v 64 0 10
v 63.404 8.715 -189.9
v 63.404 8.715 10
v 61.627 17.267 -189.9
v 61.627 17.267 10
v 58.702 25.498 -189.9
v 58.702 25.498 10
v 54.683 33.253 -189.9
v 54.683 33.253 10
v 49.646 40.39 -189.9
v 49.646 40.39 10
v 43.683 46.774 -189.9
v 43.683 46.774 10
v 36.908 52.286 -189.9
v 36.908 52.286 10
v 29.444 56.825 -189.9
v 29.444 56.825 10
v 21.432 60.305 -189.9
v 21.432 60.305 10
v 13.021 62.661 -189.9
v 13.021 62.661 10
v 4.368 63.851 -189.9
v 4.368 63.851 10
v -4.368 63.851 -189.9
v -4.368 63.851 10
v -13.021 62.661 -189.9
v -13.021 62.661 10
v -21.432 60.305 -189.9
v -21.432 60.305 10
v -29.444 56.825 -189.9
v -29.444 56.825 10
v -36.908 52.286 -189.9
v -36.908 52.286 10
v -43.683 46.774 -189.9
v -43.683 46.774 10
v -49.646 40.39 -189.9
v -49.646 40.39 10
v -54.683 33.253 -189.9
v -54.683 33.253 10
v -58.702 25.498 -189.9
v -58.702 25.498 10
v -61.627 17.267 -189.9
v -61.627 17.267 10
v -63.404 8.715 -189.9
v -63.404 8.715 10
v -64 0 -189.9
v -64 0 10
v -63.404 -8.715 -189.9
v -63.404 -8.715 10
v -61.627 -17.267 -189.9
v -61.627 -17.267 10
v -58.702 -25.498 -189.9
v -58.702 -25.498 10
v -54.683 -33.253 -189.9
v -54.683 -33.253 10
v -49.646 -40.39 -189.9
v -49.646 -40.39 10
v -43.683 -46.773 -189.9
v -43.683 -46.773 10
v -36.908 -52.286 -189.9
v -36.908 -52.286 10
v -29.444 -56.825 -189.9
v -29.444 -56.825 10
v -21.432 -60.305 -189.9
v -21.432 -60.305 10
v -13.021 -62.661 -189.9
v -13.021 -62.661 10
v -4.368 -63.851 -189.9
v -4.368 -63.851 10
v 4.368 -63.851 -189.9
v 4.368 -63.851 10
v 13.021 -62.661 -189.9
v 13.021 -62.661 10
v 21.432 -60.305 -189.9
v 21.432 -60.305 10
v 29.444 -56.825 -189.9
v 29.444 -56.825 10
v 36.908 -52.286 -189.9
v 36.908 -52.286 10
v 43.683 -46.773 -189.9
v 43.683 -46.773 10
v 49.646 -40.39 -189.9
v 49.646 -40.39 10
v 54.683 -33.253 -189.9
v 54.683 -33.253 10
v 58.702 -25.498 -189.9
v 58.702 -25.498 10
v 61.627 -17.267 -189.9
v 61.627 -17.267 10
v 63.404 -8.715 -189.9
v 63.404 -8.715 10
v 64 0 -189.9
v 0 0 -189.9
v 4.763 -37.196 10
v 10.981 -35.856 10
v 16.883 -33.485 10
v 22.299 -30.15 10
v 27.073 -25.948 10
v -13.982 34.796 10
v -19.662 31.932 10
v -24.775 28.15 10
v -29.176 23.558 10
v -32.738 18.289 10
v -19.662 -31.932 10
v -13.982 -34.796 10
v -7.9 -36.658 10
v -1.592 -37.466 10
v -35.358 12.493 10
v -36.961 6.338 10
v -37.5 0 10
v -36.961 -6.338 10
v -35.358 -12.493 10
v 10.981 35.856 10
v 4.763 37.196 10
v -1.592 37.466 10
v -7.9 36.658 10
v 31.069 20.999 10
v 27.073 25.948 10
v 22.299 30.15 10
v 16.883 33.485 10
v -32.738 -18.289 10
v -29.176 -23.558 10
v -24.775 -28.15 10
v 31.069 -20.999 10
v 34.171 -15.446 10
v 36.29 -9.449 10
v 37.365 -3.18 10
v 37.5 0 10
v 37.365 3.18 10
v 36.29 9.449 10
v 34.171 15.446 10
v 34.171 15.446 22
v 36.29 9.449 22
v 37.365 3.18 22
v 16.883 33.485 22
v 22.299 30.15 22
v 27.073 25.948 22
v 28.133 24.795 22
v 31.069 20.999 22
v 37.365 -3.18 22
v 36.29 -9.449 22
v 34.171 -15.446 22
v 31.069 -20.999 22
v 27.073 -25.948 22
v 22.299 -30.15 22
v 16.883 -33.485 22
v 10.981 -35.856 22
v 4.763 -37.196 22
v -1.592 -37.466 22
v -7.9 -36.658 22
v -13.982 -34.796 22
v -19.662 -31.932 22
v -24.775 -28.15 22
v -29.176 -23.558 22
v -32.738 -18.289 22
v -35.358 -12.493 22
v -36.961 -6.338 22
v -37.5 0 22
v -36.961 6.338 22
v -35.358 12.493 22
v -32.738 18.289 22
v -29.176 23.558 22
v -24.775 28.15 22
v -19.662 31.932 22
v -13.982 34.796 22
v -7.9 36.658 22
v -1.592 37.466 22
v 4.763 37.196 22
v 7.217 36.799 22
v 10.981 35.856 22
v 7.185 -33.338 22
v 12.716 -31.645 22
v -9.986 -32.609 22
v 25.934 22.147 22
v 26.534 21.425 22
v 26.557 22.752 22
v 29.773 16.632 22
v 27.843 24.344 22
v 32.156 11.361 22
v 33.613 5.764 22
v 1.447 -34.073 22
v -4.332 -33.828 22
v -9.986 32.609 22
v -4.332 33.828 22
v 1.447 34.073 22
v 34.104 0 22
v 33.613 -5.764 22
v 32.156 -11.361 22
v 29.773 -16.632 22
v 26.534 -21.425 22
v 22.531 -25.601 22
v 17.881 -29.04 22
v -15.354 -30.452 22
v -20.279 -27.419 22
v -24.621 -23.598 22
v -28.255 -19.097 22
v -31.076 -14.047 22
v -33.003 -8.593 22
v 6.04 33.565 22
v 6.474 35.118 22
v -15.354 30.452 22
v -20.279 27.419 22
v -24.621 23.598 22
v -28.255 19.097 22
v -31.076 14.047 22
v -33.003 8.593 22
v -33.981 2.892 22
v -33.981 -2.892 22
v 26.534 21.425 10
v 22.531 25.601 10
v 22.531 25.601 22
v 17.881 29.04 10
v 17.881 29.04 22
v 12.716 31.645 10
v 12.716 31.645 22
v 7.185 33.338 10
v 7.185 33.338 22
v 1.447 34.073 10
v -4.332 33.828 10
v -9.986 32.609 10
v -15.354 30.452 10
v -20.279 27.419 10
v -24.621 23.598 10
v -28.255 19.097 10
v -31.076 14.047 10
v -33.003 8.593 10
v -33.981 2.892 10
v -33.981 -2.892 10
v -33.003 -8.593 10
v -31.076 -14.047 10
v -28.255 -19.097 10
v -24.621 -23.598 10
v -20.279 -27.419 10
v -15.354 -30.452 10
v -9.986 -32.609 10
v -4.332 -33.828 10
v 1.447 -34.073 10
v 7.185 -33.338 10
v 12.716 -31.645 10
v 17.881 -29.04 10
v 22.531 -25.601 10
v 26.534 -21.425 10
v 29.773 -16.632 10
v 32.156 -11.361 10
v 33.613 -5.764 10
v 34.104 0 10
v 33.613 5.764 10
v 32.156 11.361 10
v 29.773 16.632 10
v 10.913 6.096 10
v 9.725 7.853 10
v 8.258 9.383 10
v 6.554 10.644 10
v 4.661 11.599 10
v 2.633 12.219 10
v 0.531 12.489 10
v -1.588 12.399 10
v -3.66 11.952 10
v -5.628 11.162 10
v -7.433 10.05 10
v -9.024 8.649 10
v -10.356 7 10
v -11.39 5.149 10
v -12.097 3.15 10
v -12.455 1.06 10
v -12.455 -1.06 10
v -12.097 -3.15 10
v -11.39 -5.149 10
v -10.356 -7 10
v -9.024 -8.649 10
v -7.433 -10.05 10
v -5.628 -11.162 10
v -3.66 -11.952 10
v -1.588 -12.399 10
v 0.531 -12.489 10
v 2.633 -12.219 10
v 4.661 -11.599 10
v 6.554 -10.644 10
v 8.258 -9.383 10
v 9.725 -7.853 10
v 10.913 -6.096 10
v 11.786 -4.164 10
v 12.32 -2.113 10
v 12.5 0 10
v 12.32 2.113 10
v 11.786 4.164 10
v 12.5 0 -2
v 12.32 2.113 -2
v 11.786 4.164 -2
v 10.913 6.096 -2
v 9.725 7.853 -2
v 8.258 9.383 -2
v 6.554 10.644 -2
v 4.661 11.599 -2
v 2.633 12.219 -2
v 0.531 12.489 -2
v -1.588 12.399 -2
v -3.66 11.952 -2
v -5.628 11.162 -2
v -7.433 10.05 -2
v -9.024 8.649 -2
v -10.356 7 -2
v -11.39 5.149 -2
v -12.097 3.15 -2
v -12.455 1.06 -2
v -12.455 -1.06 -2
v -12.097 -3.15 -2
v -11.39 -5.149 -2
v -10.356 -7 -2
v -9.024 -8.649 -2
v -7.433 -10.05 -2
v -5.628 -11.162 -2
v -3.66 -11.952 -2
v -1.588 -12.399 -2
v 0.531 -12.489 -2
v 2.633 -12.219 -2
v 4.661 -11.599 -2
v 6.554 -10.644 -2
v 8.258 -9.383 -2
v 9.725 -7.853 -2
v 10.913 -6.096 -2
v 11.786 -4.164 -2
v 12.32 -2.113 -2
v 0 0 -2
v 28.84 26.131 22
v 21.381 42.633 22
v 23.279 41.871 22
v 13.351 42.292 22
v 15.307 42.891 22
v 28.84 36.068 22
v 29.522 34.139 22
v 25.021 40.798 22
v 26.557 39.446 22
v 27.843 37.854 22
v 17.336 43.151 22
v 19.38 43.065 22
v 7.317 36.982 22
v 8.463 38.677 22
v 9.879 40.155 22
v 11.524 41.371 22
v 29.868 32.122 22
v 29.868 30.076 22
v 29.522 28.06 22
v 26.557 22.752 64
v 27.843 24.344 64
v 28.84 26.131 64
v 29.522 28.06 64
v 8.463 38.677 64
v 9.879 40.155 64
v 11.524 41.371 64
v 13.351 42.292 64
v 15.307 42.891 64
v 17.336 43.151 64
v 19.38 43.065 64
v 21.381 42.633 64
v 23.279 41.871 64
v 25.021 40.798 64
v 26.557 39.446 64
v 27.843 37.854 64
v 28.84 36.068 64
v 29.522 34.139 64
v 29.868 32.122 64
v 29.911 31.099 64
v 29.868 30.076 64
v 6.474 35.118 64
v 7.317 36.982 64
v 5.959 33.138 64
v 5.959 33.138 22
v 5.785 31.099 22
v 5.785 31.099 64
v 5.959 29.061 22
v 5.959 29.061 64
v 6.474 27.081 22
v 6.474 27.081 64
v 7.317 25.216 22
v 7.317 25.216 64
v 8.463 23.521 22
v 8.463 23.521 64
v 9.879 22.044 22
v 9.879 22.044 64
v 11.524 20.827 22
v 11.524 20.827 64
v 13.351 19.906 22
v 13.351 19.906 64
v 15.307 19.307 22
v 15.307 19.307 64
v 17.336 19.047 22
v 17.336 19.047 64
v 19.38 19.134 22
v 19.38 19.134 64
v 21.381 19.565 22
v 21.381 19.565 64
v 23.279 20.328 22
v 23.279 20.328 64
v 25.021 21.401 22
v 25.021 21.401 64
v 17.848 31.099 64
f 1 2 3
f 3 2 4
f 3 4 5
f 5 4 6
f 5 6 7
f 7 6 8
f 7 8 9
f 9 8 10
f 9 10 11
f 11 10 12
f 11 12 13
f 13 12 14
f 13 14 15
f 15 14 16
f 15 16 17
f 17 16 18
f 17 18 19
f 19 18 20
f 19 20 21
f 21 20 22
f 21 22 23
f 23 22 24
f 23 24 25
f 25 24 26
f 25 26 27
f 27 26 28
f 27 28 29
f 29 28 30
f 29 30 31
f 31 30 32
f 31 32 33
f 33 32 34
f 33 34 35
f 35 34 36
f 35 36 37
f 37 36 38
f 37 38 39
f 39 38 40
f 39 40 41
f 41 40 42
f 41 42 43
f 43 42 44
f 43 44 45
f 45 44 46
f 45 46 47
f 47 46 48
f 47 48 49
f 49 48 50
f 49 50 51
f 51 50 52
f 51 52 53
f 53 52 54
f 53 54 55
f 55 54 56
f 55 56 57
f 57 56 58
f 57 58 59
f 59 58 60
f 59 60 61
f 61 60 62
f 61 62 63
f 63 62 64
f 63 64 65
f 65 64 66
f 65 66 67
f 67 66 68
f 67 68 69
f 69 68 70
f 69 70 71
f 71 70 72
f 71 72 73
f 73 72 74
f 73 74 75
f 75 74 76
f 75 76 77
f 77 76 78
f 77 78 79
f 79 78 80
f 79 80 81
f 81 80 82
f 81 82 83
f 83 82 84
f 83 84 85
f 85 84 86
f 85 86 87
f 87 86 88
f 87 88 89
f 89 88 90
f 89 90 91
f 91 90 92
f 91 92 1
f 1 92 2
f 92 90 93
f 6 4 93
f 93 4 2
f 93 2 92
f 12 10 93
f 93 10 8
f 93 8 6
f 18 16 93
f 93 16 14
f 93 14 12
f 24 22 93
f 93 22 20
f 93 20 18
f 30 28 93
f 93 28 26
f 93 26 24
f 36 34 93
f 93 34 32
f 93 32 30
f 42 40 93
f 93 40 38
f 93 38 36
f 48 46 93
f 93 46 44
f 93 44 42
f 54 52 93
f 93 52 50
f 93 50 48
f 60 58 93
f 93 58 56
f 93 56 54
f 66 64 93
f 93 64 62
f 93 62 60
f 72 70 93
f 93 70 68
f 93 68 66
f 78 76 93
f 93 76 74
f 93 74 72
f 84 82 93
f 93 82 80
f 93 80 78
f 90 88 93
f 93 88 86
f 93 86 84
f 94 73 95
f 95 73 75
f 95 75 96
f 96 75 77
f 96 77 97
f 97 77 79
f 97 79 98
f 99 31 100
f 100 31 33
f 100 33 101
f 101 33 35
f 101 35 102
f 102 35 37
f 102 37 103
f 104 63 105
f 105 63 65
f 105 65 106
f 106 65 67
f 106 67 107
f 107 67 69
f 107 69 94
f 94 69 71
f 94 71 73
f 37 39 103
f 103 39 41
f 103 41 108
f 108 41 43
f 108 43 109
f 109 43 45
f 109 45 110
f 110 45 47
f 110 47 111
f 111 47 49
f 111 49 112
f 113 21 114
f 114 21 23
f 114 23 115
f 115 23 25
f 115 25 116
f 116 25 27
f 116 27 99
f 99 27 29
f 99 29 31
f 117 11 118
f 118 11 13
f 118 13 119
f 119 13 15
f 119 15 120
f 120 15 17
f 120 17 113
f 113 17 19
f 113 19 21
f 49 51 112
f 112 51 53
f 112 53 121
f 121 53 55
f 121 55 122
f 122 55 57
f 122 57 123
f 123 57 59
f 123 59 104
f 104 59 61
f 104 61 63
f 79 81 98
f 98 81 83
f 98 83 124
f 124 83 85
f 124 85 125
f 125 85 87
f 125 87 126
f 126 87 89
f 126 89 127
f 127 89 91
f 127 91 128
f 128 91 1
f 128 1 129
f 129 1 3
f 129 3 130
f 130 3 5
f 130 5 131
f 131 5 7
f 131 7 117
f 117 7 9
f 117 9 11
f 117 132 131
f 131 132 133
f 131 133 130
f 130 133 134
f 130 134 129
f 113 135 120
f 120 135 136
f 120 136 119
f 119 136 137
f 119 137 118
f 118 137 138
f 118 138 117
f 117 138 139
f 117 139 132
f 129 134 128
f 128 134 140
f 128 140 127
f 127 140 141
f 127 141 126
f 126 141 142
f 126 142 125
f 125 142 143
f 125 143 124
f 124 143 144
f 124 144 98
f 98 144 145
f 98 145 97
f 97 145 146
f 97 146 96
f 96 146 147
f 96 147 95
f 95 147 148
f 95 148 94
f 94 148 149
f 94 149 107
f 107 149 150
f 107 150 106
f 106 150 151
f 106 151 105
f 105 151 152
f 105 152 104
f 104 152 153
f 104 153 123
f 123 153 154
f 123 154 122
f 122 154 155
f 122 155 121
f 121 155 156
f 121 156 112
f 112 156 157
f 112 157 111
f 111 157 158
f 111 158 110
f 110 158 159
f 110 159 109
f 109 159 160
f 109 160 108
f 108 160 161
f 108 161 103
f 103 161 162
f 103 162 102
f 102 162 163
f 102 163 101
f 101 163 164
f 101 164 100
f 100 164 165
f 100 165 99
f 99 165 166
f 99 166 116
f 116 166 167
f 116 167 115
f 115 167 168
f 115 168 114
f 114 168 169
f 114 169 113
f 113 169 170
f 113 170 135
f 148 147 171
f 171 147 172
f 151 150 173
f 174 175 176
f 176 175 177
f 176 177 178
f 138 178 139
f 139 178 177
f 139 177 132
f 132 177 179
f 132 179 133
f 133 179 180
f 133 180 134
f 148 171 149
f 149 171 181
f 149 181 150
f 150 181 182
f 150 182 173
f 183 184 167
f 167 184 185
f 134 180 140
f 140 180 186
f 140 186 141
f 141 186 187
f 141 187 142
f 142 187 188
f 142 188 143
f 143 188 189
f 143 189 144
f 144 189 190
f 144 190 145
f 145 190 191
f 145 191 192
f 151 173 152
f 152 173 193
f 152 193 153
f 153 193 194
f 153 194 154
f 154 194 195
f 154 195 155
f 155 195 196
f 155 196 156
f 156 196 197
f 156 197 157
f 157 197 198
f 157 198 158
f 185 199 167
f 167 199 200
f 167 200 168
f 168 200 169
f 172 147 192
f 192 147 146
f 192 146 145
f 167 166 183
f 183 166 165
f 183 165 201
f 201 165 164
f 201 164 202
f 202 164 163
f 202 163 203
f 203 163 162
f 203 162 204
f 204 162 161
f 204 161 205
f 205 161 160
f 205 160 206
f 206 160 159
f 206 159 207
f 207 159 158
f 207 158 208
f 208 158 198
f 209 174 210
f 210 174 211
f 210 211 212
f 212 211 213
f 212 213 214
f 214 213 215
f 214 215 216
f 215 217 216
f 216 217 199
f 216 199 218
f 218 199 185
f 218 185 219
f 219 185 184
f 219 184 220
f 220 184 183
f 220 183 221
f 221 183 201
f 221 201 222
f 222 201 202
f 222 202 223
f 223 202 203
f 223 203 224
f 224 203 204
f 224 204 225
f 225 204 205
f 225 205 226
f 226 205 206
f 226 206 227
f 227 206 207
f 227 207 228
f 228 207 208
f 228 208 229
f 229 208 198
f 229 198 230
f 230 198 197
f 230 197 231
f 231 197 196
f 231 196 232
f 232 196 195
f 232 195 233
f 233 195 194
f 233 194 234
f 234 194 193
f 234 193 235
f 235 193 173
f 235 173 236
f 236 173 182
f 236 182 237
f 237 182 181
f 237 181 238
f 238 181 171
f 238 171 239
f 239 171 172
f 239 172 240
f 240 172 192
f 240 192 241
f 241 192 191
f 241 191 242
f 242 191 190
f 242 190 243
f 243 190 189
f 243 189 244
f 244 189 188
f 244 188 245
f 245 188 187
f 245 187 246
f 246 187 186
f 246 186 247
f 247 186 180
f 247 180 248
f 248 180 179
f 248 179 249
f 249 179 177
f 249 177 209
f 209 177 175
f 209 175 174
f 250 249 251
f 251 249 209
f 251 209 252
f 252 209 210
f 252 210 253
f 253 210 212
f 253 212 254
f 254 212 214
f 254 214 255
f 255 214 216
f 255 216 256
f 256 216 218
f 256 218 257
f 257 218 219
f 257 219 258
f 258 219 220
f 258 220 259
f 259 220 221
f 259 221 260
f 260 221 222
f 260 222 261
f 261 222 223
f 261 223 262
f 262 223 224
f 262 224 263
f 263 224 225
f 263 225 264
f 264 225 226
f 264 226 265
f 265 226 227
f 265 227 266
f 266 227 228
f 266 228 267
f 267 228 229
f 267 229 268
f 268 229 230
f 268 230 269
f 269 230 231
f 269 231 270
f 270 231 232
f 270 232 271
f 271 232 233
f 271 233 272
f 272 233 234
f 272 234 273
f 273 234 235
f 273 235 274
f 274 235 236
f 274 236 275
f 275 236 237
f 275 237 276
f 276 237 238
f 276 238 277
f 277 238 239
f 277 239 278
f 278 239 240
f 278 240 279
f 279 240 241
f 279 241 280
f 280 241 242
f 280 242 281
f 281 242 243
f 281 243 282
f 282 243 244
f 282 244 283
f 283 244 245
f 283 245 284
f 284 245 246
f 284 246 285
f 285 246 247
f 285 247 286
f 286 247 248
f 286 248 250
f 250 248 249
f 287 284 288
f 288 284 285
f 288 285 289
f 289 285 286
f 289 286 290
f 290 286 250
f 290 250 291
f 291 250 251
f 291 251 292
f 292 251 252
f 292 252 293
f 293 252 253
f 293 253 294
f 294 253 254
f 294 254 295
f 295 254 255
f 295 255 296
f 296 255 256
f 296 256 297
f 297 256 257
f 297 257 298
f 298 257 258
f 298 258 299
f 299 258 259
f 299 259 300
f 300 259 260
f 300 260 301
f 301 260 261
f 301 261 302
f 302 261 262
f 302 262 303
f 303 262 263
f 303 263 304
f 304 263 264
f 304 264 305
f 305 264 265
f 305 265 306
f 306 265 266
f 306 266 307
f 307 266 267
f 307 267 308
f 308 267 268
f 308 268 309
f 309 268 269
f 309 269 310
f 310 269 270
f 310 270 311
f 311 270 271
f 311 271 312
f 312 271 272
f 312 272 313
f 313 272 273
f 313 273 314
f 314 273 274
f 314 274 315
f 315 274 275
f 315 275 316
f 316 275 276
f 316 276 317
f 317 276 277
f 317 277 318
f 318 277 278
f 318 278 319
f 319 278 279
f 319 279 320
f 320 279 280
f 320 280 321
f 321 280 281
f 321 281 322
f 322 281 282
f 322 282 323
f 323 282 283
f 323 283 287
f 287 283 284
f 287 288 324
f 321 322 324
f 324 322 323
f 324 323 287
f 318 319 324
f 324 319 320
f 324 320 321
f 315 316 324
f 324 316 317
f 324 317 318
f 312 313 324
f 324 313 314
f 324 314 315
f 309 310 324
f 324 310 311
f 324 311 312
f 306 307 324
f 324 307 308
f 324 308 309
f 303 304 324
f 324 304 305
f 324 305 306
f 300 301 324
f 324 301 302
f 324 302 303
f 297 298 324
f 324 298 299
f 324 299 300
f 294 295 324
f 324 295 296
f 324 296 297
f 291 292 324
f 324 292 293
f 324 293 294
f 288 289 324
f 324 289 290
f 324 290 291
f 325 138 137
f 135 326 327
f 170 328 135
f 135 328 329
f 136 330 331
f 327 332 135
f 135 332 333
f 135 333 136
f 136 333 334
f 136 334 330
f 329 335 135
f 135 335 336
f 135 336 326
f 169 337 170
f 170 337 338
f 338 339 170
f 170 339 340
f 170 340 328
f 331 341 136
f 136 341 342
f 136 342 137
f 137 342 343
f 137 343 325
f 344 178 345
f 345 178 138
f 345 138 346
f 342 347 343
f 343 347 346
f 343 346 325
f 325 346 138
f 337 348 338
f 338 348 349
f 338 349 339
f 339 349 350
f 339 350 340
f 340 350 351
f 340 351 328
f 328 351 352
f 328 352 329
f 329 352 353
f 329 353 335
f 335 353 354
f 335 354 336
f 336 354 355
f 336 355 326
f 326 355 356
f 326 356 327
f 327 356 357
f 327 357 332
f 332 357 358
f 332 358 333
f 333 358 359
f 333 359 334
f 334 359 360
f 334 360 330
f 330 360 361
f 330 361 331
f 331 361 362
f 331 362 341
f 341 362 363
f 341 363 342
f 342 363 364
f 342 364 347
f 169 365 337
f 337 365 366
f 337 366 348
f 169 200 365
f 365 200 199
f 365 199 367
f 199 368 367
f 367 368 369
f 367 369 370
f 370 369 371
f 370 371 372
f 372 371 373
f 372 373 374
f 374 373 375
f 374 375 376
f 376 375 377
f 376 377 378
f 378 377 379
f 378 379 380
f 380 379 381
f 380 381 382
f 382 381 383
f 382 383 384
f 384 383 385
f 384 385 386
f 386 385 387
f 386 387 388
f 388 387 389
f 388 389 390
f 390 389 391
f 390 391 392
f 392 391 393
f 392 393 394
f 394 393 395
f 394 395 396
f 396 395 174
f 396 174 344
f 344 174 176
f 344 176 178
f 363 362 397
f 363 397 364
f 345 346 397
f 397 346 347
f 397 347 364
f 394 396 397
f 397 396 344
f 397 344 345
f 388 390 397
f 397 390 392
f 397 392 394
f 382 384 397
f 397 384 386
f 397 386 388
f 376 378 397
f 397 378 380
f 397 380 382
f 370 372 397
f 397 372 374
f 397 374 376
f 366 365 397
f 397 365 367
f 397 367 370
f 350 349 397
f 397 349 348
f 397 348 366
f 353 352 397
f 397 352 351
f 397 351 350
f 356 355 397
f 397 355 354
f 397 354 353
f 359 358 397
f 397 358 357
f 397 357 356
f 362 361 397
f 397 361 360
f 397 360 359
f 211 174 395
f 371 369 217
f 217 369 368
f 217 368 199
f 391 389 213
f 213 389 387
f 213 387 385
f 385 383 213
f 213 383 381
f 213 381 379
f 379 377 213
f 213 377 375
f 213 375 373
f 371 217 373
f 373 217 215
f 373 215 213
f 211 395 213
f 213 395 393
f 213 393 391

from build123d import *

# Parameters (mm, degrees)
BOSS_EXTRUDE1_DEPTH      = 10
BOSS_EXTRUDE1_DEPTH_BACK = 189.9
SKETCH1_R                = 64
SKETCH3_R                = 37.5
BOSS_EXTRUDE2_DEPTH      = 12
SKETCH4_R                = 34.103766087
CUT_EXTRUDE1_DEPTH       = 12
SKETCH5_R                = 12.5
CUT_EXTRUDE2_DEPTH       = 12
SKETCH11_R               = 12.062975476
BOSS_EXTRUDE5_DEPTH      = 42


with BuildPart() as part:
    # Sketch1 → Boss-Extrude1 (new, two sides: drawn at the far end of the back side and taken through both)
    with BuildSketch(Plane.XY.offset(-BOSS_EXTRUDE1_DEPTH_BACK)):
        Circle(SKETCH1_R)
    extrude(amount=BOSS_EXTRUDE1_DEPTH + BOSS_EXTRUDE1_DEPTH_BACK)

    # Sketch3 → Boss-Extrude2 (add)
    with BuildSketch(Plane.XY.offset(10)):
        Circle(SKETCH3_R)
    extrude(amount=BOSS_EXTRUDE2_DEPTH)

    # Sketch4 → Cut-Extrude1 (cut)
    with BuildSketch(Plane.XY.offset(22)):
        Circle(SKETCH4_R)
    extrude(amount=-CUT_EXTRUDE1_DEPTH, mode=Mode.SUBTRACT)

    # Sketch5 → Cut-Extrude2 (cut)
    with BuildSketch(Plane.XY.offset(10)):
        Circle(SKETCH5_R)
    extrude(amount=-CUT_EXTRUDE2_DEPTH, mode=Mode.SUBTRACT)

    # Sketch11 → Boss-Extrude5 (add)
    with BuildSketch(Plane.XY.offset(22)):
        with Locations(Location((17.84826857, 31.099255842, 0), (0, 0, 168.206932432))):
            Circle(SKETCH11_R)
    extrude(amount=BOSS_EXTRUDE5_DEPTH)


solid = part.part
